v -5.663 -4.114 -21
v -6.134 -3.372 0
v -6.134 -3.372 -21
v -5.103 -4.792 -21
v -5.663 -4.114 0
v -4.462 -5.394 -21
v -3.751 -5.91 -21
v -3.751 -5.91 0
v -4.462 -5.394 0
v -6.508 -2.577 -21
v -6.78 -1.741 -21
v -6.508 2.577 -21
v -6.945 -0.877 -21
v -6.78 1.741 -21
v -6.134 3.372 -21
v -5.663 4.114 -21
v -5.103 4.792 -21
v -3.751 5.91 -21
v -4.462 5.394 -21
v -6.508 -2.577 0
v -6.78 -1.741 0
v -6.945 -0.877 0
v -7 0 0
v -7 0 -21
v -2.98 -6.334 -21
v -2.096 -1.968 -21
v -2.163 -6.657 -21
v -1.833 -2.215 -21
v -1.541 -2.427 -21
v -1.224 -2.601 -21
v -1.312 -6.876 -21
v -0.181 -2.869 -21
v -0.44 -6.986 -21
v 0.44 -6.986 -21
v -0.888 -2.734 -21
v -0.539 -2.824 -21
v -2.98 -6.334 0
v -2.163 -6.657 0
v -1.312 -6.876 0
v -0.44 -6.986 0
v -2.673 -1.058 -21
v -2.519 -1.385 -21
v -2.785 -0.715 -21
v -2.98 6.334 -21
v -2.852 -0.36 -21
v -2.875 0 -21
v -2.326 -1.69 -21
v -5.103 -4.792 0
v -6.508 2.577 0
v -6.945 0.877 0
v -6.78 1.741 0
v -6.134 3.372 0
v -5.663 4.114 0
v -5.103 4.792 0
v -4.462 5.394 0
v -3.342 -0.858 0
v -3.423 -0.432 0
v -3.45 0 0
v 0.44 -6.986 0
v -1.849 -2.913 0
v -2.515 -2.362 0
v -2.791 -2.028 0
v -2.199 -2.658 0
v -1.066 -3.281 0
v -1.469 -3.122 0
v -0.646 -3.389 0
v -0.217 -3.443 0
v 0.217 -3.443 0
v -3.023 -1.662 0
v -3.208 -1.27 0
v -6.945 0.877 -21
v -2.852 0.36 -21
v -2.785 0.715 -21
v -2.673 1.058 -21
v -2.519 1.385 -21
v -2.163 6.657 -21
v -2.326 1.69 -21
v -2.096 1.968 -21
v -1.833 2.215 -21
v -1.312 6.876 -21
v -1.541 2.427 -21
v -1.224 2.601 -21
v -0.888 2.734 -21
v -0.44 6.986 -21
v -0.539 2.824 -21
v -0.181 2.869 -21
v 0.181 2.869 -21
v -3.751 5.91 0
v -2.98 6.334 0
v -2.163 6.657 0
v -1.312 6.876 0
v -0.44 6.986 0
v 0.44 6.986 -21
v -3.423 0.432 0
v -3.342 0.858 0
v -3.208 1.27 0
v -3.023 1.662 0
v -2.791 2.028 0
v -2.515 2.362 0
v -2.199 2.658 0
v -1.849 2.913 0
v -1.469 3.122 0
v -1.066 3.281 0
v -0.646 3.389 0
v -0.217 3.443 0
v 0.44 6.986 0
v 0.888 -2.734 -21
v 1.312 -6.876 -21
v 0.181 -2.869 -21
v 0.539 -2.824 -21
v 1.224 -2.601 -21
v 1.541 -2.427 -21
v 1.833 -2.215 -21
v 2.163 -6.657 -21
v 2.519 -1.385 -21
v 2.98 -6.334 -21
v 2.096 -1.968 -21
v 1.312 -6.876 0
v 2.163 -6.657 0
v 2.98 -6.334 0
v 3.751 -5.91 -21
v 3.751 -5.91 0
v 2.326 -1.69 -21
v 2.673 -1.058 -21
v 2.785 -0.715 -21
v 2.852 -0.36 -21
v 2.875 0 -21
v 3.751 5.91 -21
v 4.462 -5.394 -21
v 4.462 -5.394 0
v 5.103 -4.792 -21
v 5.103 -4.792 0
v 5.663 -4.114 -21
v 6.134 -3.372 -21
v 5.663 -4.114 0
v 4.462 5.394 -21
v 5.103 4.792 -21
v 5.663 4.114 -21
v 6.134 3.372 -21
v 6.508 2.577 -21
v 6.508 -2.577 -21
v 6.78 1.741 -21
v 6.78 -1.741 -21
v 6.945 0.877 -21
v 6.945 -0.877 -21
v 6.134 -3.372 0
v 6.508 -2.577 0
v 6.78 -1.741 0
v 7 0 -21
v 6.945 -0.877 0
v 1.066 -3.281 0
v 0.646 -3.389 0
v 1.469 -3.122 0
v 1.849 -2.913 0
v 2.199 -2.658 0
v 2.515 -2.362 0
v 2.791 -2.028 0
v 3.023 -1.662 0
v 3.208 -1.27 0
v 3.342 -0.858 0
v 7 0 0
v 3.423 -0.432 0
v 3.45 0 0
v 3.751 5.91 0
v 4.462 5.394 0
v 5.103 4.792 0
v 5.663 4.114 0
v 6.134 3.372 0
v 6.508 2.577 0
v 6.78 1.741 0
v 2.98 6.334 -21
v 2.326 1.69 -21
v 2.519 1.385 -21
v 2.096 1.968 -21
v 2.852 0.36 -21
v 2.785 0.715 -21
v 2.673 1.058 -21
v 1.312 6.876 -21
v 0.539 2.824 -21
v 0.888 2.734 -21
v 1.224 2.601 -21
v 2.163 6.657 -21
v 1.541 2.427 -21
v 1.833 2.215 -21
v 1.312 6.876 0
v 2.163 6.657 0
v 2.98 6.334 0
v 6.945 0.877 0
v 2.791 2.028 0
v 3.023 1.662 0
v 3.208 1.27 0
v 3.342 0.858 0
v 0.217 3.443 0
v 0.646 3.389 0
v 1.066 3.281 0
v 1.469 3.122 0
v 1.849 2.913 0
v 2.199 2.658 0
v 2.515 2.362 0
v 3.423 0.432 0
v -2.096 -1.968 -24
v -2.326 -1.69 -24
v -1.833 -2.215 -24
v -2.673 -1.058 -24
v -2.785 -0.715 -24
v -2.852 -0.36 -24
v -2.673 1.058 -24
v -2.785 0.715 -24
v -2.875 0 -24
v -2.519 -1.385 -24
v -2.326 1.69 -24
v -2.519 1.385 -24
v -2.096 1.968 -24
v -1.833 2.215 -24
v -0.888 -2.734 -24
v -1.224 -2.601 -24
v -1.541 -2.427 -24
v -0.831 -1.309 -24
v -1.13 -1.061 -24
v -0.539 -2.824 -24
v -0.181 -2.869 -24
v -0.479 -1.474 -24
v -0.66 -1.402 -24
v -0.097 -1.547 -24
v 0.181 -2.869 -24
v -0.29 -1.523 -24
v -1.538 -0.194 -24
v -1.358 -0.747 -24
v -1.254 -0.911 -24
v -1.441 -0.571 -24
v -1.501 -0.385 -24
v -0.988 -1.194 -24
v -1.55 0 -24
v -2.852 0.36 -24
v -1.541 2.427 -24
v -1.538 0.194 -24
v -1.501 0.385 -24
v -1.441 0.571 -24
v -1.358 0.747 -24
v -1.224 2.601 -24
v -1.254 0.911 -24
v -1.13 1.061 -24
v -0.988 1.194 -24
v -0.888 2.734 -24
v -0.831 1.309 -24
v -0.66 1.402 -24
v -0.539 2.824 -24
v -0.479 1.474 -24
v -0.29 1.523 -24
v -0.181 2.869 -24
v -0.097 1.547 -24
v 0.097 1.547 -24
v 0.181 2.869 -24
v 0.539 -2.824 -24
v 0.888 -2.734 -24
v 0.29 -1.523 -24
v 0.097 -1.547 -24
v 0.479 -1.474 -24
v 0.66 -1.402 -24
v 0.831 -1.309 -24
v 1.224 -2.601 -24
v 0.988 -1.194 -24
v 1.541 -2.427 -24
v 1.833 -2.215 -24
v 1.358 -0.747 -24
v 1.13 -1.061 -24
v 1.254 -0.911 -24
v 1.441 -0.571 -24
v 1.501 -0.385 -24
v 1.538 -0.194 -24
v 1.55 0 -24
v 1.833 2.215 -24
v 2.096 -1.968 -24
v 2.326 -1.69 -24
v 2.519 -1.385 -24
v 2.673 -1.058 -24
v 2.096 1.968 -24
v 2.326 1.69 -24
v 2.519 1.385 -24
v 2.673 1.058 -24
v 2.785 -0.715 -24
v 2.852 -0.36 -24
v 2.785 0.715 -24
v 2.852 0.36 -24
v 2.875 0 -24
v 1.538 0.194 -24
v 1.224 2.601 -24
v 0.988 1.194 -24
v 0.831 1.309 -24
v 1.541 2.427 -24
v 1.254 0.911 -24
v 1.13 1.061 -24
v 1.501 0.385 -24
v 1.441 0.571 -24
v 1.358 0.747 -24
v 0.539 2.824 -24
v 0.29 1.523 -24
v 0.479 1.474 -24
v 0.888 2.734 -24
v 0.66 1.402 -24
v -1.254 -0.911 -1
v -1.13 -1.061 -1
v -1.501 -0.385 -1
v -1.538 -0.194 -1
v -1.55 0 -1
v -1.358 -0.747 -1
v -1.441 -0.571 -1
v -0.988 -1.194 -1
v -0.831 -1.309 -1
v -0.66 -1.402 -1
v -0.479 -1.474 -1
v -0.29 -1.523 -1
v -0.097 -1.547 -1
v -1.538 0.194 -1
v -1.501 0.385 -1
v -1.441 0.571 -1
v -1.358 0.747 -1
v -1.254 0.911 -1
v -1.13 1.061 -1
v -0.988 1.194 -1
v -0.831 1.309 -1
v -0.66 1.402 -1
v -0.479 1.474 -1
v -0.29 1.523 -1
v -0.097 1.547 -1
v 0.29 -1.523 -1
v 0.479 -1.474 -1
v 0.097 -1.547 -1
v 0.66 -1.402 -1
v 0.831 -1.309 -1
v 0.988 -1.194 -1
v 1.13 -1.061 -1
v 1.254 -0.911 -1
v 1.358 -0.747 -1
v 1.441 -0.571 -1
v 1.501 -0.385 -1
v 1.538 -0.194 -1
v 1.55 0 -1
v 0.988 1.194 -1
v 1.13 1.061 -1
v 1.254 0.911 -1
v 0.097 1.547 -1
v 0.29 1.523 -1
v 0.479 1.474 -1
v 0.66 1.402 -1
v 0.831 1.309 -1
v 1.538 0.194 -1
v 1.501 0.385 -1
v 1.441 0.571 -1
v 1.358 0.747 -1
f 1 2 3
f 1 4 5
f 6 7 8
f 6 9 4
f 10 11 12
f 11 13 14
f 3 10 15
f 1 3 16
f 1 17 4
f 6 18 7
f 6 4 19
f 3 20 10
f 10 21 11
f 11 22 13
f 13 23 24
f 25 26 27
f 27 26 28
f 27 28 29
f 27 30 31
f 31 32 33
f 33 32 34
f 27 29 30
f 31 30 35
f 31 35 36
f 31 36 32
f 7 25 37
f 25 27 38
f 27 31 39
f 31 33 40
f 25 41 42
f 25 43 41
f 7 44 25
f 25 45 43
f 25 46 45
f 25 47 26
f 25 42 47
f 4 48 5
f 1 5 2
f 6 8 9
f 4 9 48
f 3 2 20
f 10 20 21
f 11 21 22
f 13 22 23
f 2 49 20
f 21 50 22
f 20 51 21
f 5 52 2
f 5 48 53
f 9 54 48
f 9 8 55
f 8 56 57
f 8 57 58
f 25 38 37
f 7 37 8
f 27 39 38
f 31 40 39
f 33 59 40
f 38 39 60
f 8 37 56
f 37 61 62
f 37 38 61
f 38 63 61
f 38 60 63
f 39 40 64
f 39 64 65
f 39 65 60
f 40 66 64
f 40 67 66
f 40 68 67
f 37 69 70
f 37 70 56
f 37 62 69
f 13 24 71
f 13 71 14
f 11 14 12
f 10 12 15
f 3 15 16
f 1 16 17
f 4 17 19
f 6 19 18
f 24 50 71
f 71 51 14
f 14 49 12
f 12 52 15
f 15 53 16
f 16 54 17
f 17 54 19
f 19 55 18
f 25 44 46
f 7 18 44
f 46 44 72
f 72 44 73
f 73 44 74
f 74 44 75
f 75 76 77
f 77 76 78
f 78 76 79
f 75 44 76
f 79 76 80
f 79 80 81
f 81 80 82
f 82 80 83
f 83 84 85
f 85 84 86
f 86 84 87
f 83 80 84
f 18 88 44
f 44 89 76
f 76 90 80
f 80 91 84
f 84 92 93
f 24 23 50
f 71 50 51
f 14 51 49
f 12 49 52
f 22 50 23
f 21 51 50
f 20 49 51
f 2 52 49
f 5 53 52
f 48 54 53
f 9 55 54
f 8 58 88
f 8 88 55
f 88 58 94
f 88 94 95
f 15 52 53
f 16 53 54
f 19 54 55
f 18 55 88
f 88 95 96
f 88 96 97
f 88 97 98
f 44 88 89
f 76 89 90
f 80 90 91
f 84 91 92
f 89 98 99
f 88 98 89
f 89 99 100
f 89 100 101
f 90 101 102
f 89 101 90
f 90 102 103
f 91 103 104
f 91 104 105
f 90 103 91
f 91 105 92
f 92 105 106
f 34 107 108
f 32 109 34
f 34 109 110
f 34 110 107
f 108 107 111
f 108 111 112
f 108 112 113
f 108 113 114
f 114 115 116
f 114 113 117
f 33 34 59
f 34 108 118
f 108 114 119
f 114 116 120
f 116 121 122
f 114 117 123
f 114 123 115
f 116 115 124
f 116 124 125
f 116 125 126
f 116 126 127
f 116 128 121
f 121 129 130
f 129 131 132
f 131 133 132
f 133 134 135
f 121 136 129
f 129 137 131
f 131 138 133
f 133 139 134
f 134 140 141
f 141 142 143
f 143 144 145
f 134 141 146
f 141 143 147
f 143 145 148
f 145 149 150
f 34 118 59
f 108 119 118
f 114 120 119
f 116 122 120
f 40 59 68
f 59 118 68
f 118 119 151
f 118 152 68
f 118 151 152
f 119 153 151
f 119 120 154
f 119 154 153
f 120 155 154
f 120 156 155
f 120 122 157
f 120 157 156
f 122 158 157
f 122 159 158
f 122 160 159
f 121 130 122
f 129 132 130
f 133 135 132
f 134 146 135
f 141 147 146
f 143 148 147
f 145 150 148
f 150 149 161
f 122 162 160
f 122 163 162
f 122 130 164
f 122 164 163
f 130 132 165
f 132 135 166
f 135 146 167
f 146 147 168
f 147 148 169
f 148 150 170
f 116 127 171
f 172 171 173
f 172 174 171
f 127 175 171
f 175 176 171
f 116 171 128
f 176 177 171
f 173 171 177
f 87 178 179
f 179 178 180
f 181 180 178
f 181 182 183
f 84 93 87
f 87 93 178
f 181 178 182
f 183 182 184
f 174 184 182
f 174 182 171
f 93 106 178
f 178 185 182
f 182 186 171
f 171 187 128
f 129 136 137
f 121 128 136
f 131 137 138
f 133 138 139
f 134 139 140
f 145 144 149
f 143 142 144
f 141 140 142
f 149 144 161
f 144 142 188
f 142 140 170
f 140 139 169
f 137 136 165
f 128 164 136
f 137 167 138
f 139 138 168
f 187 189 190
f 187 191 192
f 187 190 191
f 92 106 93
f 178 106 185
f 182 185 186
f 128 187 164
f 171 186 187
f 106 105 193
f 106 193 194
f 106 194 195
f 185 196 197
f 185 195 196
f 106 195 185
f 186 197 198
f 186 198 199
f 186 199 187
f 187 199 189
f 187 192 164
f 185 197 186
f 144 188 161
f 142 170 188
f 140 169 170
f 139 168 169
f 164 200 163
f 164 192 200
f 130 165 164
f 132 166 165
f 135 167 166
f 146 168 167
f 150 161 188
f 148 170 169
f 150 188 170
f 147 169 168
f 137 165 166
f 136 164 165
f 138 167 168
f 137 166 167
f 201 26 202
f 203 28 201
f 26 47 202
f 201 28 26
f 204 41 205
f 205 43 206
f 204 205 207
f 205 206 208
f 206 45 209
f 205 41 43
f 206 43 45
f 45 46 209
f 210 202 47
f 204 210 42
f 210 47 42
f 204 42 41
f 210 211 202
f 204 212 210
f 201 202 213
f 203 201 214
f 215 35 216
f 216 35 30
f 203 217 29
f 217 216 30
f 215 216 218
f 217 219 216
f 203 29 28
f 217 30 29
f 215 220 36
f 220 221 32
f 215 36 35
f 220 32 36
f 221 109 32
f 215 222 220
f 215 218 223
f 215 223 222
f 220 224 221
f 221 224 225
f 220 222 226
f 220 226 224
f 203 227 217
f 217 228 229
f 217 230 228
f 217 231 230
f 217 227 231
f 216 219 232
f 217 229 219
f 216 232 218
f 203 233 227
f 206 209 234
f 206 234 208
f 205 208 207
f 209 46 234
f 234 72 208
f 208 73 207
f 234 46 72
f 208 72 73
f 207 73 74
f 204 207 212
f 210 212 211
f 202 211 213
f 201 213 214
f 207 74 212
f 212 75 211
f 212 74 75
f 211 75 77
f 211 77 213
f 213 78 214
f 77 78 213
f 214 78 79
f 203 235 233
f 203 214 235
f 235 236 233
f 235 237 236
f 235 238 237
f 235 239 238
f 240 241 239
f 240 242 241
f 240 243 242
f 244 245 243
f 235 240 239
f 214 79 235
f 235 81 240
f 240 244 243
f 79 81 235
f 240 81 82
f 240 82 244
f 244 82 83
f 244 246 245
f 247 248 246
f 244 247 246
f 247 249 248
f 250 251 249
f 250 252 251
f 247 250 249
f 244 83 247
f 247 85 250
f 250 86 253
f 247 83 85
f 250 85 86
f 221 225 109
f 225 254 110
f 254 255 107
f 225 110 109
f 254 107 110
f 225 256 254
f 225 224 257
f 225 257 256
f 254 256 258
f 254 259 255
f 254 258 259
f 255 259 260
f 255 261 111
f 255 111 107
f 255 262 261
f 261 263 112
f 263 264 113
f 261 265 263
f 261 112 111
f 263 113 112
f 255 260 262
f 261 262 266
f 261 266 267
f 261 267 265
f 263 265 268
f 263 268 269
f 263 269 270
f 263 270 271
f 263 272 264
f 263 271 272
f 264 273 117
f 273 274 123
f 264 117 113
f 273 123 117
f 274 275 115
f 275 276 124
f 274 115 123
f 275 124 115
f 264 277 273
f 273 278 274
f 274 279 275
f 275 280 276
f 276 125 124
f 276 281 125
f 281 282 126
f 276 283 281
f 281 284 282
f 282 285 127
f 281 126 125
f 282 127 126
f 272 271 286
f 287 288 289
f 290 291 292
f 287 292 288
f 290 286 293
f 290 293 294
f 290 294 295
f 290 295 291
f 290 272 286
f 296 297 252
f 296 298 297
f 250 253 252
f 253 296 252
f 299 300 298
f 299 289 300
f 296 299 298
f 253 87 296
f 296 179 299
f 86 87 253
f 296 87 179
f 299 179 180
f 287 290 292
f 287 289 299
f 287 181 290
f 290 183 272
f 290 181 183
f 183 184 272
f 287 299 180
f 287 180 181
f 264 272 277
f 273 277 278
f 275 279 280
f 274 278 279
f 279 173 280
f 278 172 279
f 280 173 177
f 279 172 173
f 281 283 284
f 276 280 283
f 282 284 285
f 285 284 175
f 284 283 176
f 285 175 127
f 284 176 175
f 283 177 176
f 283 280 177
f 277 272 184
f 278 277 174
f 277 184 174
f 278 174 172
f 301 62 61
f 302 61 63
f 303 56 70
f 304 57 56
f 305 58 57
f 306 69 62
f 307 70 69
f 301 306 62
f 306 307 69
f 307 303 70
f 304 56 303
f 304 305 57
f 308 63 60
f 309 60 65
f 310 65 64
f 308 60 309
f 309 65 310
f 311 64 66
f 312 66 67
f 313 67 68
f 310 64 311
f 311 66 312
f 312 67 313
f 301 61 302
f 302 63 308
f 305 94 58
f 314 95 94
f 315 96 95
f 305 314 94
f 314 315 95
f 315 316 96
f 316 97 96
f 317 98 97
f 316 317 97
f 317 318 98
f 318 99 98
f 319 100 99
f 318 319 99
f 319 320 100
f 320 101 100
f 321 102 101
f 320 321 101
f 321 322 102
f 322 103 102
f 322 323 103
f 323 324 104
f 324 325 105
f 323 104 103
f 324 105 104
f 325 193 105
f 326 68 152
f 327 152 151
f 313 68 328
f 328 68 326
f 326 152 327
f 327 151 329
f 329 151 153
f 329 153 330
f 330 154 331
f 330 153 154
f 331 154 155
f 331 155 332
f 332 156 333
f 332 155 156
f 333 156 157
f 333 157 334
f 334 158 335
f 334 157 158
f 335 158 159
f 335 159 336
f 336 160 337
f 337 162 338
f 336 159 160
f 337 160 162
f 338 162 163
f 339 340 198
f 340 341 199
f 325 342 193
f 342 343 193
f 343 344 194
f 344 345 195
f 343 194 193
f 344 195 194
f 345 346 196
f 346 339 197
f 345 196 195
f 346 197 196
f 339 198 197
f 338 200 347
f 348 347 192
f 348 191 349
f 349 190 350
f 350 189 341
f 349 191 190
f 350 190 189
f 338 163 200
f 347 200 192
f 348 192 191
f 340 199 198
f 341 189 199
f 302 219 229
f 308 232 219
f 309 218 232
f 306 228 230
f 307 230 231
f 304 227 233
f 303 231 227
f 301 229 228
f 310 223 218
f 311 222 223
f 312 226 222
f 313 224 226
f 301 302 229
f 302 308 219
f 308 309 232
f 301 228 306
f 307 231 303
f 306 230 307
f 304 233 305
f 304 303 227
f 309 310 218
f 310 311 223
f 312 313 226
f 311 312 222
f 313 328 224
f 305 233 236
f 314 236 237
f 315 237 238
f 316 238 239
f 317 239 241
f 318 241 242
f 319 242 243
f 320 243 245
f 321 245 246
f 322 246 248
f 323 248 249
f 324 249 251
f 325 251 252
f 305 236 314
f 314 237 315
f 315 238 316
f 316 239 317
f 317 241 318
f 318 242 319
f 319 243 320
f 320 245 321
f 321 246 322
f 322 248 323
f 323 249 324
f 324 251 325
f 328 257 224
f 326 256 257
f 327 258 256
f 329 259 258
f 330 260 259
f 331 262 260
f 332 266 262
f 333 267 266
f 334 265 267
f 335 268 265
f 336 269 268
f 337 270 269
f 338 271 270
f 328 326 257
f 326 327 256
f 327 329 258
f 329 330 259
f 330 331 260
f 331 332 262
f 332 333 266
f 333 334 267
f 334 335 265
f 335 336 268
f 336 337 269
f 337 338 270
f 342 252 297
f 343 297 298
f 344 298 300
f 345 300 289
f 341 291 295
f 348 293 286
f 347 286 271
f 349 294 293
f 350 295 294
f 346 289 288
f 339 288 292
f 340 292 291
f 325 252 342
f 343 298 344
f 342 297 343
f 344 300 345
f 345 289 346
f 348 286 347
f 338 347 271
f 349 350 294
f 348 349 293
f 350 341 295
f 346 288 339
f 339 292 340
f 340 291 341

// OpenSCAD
$fn = 50;


difference() {
	union() {
		translate(v = [0, 0, -21.0000000000]) {
			cylinder(h = 21, r = 7.0000000000);
		}
		#translate(v = [0, 0, -24.0000000000]) {
			cylinder(h = 24, r = 2.8750000000);
		}
	}
	union() {
		translate(v = [0, 0, 0]) {
			rotate(a = [0, 0, 0]) {
				difference() {
					union() {
						translate(v = [0, 0, -24.0000000000]) {
							cylinder(h = 24, r = 1.2500000000);
						}
						translate(v = [0, 0, -1.0000000000]) {
							cylinder(h = 1.0000000000, r1 = 1.5500000000, r2 = 3.4500000000);
						}
						translate(v = [0, 0, -24.0000000000]) {
							cylinder(h = 24, r = 1.5500000000);
						}
						translate(v = [0, 0, -24.0000000000]) {
							cylinder(h = 24, r = 1.2500000000);
						}
					}
					union();
				}
			}
		}
	}
}
